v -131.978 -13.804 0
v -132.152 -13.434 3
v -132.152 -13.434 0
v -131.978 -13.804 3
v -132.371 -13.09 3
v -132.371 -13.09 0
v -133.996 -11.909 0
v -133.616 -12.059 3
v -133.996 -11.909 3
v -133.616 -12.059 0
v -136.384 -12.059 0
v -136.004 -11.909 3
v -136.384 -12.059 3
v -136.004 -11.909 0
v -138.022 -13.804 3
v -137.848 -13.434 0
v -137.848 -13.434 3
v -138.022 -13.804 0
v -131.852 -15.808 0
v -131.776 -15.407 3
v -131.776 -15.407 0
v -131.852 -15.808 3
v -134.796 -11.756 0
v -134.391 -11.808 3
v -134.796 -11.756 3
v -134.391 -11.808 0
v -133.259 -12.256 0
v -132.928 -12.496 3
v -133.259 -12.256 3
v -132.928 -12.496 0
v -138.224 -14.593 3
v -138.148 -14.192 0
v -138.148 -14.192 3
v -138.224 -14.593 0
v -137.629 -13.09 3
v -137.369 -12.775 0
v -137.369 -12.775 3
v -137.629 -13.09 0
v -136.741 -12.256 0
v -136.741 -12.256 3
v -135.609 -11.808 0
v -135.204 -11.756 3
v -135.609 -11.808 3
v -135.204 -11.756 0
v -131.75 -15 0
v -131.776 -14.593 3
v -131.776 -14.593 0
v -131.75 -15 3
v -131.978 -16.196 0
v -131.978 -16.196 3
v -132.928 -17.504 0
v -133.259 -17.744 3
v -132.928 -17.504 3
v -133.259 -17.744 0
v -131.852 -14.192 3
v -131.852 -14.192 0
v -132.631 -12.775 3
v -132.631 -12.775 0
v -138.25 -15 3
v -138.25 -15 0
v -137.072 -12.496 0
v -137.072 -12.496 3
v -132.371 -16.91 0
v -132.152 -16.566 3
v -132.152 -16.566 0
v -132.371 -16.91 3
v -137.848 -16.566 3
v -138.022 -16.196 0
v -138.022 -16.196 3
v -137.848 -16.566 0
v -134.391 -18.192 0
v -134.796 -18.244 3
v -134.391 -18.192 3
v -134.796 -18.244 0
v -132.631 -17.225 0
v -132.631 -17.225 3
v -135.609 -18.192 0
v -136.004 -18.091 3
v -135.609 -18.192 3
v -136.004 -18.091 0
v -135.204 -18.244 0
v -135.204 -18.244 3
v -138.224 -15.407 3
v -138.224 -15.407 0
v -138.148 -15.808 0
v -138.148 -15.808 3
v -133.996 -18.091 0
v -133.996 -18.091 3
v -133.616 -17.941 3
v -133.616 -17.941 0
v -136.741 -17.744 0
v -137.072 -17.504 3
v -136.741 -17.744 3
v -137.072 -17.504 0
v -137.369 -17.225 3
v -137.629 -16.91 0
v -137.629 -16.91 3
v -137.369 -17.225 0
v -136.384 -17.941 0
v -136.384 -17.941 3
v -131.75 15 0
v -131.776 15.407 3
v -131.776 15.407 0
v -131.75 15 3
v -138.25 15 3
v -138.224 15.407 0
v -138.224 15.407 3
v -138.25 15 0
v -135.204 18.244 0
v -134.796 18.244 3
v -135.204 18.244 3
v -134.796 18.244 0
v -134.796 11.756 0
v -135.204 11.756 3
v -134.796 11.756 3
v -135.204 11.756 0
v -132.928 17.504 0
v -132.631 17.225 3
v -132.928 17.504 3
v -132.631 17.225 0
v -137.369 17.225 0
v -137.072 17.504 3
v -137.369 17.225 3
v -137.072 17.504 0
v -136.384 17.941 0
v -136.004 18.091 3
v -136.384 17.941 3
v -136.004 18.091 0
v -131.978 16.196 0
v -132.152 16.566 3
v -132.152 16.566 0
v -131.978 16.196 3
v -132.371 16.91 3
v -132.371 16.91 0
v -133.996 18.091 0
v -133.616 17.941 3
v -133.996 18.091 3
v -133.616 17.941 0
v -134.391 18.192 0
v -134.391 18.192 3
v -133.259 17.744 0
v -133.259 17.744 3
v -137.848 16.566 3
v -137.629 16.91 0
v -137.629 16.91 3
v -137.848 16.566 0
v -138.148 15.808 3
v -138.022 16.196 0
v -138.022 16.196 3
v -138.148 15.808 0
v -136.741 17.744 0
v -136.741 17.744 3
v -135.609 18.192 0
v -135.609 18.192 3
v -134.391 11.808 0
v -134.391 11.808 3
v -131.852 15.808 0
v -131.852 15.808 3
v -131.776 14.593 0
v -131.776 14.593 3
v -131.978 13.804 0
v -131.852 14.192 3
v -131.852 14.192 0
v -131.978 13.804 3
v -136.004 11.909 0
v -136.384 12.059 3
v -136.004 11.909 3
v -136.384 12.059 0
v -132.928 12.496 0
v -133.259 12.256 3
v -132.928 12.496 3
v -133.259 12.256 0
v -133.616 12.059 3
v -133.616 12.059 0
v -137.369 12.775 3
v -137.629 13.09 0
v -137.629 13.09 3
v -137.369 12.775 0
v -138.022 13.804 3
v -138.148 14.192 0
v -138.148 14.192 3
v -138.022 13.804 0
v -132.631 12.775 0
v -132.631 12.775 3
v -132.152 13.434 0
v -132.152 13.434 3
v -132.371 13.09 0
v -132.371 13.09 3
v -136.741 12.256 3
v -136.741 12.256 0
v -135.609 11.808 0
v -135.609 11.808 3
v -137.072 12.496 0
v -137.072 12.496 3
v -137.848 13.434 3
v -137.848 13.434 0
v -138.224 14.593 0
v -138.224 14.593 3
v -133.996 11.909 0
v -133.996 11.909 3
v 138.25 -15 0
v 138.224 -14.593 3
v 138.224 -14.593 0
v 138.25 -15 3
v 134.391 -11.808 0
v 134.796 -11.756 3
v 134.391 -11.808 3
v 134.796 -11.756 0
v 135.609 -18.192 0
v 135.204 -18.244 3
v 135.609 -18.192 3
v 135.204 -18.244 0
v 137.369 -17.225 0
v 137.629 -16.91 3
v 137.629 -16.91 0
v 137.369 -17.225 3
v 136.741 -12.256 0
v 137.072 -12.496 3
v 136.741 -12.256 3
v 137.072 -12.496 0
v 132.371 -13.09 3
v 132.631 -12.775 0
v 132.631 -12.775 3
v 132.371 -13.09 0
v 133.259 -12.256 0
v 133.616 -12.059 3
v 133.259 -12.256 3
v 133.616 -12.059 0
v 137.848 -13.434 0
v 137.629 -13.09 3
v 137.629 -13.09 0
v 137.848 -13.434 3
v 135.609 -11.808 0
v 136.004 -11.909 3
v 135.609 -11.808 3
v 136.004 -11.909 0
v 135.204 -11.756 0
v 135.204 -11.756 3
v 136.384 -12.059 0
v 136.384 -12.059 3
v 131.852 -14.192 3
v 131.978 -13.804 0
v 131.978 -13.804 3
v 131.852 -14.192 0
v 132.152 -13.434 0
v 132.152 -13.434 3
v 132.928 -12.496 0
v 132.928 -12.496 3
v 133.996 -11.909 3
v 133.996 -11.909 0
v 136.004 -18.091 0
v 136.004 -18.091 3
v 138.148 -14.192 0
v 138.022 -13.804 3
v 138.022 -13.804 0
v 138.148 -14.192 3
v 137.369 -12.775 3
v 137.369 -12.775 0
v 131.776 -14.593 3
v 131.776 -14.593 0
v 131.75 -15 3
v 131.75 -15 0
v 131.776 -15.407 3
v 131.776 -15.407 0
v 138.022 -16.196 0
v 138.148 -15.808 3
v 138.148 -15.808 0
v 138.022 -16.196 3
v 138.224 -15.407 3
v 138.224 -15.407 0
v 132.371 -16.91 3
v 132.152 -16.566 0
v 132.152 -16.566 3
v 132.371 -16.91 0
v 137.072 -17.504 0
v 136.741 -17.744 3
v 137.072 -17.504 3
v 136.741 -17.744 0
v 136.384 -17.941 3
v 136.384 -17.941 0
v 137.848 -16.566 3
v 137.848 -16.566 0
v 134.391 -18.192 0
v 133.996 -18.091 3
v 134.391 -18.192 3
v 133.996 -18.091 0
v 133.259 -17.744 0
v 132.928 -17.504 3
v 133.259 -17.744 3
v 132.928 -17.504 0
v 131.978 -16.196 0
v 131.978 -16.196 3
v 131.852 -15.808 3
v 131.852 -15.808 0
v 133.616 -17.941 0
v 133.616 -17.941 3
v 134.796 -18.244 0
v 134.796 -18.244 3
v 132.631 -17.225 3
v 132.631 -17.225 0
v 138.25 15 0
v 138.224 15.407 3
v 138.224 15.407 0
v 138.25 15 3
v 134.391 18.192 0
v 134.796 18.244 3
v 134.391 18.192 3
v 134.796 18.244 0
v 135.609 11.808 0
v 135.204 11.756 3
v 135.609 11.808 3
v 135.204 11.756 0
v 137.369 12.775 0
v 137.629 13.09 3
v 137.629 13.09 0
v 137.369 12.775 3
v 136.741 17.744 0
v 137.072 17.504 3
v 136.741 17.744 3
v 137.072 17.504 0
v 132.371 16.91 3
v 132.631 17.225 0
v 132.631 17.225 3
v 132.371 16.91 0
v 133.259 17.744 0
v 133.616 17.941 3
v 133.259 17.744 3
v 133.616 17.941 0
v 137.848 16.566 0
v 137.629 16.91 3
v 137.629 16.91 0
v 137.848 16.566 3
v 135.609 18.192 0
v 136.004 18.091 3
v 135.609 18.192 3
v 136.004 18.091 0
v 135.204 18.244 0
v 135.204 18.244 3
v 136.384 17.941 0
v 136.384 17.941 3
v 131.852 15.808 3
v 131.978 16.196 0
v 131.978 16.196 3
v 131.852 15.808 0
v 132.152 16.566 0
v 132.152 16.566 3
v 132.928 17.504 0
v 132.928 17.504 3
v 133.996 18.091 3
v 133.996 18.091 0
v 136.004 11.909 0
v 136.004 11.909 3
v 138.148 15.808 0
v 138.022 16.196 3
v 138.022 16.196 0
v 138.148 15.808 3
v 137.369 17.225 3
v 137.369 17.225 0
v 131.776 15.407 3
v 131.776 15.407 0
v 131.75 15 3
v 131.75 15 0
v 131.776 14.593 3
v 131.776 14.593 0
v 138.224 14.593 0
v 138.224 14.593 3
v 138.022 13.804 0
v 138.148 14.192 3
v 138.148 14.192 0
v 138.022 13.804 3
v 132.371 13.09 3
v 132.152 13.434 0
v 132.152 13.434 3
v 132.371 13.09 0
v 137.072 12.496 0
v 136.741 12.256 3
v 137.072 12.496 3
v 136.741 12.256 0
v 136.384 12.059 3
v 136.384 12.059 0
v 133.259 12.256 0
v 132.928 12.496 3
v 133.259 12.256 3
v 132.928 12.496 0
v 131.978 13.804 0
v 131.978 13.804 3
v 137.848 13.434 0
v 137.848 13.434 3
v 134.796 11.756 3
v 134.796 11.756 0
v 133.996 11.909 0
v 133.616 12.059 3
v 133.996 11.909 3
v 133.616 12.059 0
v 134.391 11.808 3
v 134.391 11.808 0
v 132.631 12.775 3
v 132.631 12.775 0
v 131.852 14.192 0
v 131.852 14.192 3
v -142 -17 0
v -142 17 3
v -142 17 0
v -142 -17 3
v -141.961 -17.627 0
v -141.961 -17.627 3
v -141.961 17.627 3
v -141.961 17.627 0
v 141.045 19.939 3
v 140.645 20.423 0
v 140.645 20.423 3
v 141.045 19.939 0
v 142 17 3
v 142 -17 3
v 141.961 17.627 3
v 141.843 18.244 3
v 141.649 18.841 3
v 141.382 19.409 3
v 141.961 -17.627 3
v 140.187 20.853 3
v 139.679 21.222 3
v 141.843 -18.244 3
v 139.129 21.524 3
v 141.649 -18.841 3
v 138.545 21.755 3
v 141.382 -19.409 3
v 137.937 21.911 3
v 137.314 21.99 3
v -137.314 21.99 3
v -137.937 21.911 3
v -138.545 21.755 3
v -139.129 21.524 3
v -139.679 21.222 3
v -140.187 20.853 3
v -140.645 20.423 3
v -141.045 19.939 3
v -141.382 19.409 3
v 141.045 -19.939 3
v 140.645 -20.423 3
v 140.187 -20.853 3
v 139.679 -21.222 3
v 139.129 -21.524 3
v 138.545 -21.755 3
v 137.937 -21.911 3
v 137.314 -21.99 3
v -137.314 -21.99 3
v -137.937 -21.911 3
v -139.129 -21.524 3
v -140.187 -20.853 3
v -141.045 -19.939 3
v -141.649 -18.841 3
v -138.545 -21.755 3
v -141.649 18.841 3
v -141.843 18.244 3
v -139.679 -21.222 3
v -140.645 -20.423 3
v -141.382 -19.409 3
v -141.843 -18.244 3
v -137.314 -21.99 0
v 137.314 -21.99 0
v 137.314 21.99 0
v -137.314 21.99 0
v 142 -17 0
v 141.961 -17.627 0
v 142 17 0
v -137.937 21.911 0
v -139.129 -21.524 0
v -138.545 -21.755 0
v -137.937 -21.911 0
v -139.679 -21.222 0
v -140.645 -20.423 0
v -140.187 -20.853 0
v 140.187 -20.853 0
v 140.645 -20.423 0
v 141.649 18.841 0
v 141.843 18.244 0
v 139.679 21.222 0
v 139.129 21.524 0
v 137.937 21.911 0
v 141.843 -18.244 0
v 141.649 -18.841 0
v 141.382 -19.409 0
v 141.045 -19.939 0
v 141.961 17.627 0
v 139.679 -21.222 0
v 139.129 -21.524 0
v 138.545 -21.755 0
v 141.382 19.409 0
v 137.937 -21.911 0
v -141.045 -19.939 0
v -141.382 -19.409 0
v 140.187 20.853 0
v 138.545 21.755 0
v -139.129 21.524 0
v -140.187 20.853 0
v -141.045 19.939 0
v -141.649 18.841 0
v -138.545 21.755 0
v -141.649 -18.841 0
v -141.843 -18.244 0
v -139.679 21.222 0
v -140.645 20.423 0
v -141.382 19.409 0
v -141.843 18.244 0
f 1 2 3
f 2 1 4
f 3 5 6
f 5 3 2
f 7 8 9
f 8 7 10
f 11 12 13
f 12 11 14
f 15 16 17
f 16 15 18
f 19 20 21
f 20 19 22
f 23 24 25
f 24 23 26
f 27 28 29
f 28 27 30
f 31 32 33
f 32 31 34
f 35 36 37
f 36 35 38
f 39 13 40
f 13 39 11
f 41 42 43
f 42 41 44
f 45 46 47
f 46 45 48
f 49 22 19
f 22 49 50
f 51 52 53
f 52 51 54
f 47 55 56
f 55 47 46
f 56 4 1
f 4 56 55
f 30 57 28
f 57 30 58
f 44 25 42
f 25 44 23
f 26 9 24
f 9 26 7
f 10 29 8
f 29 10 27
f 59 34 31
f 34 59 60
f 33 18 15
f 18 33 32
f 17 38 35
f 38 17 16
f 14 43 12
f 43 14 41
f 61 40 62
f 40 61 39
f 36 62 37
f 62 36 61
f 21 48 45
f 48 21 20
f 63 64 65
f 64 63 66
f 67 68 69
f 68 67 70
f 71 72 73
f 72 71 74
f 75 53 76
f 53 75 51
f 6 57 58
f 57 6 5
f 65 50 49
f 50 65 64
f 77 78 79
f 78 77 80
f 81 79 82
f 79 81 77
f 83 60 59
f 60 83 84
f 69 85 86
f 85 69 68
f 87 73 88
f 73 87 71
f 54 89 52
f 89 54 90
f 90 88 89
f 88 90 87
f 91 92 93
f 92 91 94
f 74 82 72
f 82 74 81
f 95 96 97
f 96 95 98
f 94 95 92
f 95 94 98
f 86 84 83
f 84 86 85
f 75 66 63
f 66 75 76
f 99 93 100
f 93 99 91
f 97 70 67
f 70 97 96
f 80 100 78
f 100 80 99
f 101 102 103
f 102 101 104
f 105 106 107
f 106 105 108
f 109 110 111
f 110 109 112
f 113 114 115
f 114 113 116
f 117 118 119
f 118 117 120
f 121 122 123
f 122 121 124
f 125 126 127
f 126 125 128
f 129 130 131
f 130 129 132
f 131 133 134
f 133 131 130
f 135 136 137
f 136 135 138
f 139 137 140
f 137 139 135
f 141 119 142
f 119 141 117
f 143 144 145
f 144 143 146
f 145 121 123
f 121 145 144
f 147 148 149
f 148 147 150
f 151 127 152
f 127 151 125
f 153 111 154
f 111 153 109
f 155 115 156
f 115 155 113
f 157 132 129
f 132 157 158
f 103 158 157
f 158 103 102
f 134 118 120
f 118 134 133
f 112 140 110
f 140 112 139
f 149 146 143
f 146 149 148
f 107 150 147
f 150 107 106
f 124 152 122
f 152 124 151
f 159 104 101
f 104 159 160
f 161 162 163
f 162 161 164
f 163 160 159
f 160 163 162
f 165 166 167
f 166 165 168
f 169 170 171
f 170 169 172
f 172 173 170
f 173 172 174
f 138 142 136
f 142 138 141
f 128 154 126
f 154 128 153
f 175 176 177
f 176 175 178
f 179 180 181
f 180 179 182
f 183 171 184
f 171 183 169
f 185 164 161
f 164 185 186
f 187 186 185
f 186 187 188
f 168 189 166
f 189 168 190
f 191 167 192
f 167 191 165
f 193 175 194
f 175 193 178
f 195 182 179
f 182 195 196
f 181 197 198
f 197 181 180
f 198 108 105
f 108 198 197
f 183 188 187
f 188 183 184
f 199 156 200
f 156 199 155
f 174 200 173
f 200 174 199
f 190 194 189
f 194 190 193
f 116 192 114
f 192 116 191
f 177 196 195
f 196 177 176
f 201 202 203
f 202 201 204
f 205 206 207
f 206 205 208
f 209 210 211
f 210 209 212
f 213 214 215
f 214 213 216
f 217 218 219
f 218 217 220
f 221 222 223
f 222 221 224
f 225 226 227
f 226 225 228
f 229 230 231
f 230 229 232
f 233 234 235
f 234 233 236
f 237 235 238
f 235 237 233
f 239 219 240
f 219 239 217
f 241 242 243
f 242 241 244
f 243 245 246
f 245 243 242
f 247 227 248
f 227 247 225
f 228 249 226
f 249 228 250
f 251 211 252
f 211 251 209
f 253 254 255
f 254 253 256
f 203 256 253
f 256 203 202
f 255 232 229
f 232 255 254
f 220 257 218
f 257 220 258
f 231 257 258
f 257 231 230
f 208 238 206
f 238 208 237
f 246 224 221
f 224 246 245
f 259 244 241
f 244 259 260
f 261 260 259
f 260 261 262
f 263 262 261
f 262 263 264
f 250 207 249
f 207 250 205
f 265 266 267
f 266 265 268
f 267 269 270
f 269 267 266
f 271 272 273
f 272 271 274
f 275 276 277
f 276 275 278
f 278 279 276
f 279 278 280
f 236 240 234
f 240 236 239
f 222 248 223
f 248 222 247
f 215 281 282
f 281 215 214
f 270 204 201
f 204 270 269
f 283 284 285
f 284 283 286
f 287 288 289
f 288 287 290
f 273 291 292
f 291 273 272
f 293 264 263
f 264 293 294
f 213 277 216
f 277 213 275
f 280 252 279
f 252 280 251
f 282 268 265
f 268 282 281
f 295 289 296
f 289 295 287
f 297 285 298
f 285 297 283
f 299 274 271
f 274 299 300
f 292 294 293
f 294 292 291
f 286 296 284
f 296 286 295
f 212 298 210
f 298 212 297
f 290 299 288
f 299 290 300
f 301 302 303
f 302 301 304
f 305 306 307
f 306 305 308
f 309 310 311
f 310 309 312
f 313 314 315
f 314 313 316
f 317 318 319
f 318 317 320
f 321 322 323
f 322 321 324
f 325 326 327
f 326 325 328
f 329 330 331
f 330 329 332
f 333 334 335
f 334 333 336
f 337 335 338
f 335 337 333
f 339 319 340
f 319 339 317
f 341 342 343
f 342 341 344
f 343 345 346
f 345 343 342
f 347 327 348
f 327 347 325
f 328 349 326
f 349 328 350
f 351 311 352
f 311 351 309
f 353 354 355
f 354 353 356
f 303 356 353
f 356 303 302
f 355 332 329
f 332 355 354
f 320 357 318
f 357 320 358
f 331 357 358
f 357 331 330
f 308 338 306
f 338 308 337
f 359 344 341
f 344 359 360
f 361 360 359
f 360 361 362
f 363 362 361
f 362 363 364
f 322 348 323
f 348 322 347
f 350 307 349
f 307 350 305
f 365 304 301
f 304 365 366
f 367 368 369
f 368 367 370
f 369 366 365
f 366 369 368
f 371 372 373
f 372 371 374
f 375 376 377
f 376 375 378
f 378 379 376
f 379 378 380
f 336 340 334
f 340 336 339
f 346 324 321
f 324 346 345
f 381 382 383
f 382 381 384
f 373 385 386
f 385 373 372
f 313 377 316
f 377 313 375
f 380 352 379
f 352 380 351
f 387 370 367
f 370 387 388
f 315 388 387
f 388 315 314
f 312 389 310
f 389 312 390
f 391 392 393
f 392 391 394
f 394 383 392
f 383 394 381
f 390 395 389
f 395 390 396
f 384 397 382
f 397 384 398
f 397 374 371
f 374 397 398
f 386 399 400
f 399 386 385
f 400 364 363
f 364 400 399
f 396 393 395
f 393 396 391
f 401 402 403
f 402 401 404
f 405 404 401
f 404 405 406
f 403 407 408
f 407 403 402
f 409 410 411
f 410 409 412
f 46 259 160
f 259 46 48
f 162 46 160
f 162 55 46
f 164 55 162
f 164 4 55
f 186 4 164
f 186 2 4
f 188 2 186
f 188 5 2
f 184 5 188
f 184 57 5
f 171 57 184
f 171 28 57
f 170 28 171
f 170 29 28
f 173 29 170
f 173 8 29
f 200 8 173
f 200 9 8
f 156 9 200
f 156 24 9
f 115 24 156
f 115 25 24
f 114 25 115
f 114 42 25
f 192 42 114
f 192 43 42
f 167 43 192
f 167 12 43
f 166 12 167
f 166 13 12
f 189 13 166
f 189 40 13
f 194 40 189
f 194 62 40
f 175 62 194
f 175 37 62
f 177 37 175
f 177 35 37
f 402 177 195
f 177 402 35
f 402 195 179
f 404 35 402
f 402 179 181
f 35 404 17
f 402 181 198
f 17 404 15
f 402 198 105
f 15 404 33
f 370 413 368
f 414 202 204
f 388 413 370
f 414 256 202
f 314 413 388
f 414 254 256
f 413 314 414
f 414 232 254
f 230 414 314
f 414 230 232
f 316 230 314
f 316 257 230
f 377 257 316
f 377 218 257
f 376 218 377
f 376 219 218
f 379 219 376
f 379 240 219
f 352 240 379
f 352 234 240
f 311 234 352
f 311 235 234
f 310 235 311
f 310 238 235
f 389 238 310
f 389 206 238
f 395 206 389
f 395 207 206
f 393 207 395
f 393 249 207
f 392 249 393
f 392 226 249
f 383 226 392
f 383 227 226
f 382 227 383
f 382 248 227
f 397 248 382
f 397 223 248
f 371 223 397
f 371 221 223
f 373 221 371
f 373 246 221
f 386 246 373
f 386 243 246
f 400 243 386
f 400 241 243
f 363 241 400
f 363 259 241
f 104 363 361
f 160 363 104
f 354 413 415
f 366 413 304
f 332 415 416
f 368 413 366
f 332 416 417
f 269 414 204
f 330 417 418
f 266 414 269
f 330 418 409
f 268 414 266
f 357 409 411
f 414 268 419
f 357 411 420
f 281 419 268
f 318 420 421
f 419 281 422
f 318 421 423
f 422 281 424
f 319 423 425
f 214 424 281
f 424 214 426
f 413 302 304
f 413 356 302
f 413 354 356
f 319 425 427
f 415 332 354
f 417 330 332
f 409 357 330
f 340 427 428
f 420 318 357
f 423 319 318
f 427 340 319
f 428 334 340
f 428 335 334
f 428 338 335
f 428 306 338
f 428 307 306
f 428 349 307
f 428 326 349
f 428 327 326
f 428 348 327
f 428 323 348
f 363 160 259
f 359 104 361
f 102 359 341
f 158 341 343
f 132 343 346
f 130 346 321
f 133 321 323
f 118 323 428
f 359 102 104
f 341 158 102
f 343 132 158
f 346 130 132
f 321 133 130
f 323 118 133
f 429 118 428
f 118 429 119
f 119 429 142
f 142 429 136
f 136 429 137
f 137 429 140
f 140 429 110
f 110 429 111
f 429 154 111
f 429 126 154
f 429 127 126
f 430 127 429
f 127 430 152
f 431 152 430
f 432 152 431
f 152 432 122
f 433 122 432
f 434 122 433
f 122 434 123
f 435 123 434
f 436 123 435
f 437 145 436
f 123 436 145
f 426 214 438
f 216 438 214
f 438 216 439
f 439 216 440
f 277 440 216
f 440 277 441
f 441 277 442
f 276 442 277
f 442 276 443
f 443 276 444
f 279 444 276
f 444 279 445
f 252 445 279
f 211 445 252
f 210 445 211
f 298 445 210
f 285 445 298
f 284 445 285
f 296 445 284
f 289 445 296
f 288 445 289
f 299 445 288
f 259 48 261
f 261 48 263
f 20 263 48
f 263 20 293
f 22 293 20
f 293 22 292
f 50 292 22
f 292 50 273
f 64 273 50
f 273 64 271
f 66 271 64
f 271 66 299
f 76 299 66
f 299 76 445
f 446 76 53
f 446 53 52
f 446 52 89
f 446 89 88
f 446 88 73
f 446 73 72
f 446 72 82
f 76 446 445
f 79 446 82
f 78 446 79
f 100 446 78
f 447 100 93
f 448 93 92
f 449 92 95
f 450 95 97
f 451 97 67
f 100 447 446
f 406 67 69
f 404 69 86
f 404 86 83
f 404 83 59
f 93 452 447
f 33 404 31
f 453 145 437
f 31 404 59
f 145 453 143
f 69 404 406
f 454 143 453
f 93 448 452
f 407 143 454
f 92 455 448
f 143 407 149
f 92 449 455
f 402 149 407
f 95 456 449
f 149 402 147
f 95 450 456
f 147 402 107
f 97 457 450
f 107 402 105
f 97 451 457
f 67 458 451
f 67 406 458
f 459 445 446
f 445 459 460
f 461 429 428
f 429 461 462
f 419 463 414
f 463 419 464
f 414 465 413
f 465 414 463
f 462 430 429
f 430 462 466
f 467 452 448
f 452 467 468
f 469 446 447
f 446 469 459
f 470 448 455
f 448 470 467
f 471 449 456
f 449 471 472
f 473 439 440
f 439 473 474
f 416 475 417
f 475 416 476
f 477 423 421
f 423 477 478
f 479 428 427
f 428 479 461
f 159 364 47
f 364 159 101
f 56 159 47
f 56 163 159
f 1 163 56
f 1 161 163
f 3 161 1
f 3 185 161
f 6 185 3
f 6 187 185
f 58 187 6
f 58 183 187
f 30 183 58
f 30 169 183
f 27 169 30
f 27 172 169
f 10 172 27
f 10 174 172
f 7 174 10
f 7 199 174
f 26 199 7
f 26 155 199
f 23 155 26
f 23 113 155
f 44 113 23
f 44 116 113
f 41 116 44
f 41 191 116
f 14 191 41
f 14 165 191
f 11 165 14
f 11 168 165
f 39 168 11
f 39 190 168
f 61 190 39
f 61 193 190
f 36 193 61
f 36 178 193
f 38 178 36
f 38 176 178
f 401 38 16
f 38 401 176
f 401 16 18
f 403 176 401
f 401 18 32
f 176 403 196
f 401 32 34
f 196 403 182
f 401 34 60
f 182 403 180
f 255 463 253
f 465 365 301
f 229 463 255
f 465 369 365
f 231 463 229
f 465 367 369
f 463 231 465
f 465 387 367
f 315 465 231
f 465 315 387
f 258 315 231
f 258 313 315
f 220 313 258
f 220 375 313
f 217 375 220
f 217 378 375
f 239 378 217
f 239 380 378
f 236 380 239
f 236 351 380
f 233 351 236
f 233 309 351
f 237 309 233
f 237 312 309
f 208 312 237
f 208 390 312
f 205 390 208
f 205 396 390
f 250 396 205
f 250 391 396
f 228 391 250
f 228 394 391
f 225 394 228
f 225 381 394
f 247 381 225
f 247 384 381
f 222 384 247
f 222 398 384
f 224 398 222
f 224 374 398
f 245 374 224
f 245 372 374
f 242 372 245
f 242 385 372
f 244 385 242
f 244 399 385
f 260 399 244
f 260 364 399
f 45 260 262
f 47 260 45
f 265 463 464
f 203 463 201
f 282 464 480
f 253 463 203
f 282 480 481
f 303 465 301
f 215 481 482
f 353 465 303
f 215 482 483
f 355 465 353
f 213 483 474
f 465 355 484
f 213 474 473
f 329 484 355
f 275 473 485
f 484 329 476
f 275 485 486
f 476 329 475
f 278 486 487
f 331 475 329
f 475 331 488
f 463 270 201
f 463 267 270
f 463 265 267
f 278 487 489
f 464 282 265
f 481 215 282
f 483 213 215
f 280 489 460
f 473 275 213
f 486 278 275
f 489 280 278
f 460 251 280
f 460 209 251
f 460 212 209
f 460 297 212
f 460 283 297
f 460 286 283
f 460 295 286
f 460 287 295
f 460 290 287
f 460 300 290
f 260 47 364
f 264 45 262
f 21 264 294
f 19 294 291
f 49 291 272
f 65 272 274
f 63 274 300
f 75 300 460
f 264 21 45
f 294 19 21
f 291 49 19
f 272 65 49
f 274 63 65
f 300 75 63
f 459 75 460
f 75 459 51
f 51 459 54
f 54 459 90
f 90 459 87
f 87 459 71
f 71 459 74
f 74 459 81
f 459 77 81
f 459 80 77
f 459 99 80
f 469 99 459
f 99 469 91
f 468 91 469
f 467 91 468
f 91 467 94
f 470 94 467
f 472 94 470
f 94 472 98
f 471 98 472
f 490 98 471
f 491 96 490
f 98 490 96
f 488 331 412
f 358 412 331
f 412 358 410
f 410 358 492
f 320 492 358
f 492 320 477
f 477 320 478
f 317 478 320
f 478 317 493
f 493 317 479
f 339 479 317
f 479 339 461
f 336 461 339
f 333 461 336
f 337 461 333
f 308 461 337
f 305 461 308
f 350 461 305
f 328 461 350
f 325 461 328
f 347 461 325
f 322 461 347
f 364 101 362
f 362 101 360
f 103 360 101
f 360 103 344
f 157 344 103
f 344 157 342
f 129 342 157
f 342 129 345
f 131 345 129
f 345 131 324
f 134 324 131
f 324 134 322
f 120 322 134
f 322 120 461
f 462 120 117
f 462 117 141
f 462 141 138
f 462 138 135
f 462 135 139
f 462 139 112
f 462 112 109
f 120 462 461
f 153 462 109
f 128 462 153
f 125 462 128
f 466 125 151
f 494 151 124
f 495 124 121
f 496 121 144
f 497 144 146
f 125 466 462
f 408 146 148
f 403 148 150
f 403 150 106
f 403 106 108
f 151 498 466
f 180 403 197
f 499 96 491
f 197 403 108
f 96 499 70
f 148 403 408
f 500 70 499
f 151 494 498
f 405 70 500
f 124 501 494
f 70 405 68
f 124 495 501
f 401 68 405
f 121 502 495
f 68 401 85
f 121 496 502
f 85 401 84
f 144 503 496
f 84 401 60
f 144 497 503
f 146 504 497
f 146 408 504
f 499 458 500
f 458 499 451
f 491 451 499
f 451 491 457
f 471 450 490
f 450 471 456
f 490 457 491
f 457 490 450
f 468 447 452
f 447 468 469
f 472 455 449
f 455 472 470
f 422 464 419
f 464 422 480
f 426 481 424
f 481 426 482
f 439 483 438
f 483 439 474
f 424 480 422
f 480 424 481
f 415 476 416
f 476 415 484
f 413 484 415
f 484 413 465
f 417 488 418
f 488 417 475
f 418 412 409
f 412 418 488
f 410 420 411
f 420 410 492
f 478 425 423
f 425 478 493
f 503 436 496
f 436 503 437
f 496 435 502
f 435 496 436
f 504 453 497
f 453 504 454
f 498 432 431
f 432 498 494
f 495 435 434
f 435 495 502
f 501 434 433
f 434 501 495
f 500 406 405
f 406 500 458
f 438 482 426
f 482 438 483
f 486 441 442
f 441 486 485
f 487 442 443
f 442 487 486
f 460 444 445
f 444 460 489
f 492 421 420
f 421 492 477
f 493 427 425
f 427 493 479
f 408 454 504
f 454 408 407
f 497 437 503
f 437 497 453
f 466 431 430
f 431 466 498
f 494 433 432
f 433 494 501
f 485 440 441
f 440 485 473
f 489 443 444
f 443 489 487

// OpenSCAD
$fn = 50;


difference() {
	union() {
		hull() {
			translate(v = [-137.0000000000, 17.0000000000, 0]) {
				cylinder(h = 3, r = 5);
			}
			translate(v = [137.0000000000, 17.0000000000, 0]) {
				cylinder(h = 3, r = 5);
			}
			translate(v = [-137.0000000000, -17.0000000000, 0]) {
				cylinder(h = 3, r = 5);
			}
			translate(v = [137.0000000000, -17.0000000000, 0]) {
				cylinder(h = 3, r = 5);
			}
		}
	}
	union() {
		translate(v = [-135.0000000000, -15.0000000000, -100.0000000000]) {
			cylinder(h = 200, r = 3.2500000000);
		}
		translate(v = [-135.0000000000, 15.0000000000, -100.0000000000]) {
			cylinder(h = 200, r = 3.2500000000);
		}
		translate(v = [135.0000000000, -15.0000000000, -100.0000000000]) {
			cylinder(h = 200, r = 3.2500000000);
		}
		translate(v = [135.0000000000, 15.0000000000, -100.0000000000]) {
			cylinder(h = 200, r = 3.2500000000);
		}
	}
}
